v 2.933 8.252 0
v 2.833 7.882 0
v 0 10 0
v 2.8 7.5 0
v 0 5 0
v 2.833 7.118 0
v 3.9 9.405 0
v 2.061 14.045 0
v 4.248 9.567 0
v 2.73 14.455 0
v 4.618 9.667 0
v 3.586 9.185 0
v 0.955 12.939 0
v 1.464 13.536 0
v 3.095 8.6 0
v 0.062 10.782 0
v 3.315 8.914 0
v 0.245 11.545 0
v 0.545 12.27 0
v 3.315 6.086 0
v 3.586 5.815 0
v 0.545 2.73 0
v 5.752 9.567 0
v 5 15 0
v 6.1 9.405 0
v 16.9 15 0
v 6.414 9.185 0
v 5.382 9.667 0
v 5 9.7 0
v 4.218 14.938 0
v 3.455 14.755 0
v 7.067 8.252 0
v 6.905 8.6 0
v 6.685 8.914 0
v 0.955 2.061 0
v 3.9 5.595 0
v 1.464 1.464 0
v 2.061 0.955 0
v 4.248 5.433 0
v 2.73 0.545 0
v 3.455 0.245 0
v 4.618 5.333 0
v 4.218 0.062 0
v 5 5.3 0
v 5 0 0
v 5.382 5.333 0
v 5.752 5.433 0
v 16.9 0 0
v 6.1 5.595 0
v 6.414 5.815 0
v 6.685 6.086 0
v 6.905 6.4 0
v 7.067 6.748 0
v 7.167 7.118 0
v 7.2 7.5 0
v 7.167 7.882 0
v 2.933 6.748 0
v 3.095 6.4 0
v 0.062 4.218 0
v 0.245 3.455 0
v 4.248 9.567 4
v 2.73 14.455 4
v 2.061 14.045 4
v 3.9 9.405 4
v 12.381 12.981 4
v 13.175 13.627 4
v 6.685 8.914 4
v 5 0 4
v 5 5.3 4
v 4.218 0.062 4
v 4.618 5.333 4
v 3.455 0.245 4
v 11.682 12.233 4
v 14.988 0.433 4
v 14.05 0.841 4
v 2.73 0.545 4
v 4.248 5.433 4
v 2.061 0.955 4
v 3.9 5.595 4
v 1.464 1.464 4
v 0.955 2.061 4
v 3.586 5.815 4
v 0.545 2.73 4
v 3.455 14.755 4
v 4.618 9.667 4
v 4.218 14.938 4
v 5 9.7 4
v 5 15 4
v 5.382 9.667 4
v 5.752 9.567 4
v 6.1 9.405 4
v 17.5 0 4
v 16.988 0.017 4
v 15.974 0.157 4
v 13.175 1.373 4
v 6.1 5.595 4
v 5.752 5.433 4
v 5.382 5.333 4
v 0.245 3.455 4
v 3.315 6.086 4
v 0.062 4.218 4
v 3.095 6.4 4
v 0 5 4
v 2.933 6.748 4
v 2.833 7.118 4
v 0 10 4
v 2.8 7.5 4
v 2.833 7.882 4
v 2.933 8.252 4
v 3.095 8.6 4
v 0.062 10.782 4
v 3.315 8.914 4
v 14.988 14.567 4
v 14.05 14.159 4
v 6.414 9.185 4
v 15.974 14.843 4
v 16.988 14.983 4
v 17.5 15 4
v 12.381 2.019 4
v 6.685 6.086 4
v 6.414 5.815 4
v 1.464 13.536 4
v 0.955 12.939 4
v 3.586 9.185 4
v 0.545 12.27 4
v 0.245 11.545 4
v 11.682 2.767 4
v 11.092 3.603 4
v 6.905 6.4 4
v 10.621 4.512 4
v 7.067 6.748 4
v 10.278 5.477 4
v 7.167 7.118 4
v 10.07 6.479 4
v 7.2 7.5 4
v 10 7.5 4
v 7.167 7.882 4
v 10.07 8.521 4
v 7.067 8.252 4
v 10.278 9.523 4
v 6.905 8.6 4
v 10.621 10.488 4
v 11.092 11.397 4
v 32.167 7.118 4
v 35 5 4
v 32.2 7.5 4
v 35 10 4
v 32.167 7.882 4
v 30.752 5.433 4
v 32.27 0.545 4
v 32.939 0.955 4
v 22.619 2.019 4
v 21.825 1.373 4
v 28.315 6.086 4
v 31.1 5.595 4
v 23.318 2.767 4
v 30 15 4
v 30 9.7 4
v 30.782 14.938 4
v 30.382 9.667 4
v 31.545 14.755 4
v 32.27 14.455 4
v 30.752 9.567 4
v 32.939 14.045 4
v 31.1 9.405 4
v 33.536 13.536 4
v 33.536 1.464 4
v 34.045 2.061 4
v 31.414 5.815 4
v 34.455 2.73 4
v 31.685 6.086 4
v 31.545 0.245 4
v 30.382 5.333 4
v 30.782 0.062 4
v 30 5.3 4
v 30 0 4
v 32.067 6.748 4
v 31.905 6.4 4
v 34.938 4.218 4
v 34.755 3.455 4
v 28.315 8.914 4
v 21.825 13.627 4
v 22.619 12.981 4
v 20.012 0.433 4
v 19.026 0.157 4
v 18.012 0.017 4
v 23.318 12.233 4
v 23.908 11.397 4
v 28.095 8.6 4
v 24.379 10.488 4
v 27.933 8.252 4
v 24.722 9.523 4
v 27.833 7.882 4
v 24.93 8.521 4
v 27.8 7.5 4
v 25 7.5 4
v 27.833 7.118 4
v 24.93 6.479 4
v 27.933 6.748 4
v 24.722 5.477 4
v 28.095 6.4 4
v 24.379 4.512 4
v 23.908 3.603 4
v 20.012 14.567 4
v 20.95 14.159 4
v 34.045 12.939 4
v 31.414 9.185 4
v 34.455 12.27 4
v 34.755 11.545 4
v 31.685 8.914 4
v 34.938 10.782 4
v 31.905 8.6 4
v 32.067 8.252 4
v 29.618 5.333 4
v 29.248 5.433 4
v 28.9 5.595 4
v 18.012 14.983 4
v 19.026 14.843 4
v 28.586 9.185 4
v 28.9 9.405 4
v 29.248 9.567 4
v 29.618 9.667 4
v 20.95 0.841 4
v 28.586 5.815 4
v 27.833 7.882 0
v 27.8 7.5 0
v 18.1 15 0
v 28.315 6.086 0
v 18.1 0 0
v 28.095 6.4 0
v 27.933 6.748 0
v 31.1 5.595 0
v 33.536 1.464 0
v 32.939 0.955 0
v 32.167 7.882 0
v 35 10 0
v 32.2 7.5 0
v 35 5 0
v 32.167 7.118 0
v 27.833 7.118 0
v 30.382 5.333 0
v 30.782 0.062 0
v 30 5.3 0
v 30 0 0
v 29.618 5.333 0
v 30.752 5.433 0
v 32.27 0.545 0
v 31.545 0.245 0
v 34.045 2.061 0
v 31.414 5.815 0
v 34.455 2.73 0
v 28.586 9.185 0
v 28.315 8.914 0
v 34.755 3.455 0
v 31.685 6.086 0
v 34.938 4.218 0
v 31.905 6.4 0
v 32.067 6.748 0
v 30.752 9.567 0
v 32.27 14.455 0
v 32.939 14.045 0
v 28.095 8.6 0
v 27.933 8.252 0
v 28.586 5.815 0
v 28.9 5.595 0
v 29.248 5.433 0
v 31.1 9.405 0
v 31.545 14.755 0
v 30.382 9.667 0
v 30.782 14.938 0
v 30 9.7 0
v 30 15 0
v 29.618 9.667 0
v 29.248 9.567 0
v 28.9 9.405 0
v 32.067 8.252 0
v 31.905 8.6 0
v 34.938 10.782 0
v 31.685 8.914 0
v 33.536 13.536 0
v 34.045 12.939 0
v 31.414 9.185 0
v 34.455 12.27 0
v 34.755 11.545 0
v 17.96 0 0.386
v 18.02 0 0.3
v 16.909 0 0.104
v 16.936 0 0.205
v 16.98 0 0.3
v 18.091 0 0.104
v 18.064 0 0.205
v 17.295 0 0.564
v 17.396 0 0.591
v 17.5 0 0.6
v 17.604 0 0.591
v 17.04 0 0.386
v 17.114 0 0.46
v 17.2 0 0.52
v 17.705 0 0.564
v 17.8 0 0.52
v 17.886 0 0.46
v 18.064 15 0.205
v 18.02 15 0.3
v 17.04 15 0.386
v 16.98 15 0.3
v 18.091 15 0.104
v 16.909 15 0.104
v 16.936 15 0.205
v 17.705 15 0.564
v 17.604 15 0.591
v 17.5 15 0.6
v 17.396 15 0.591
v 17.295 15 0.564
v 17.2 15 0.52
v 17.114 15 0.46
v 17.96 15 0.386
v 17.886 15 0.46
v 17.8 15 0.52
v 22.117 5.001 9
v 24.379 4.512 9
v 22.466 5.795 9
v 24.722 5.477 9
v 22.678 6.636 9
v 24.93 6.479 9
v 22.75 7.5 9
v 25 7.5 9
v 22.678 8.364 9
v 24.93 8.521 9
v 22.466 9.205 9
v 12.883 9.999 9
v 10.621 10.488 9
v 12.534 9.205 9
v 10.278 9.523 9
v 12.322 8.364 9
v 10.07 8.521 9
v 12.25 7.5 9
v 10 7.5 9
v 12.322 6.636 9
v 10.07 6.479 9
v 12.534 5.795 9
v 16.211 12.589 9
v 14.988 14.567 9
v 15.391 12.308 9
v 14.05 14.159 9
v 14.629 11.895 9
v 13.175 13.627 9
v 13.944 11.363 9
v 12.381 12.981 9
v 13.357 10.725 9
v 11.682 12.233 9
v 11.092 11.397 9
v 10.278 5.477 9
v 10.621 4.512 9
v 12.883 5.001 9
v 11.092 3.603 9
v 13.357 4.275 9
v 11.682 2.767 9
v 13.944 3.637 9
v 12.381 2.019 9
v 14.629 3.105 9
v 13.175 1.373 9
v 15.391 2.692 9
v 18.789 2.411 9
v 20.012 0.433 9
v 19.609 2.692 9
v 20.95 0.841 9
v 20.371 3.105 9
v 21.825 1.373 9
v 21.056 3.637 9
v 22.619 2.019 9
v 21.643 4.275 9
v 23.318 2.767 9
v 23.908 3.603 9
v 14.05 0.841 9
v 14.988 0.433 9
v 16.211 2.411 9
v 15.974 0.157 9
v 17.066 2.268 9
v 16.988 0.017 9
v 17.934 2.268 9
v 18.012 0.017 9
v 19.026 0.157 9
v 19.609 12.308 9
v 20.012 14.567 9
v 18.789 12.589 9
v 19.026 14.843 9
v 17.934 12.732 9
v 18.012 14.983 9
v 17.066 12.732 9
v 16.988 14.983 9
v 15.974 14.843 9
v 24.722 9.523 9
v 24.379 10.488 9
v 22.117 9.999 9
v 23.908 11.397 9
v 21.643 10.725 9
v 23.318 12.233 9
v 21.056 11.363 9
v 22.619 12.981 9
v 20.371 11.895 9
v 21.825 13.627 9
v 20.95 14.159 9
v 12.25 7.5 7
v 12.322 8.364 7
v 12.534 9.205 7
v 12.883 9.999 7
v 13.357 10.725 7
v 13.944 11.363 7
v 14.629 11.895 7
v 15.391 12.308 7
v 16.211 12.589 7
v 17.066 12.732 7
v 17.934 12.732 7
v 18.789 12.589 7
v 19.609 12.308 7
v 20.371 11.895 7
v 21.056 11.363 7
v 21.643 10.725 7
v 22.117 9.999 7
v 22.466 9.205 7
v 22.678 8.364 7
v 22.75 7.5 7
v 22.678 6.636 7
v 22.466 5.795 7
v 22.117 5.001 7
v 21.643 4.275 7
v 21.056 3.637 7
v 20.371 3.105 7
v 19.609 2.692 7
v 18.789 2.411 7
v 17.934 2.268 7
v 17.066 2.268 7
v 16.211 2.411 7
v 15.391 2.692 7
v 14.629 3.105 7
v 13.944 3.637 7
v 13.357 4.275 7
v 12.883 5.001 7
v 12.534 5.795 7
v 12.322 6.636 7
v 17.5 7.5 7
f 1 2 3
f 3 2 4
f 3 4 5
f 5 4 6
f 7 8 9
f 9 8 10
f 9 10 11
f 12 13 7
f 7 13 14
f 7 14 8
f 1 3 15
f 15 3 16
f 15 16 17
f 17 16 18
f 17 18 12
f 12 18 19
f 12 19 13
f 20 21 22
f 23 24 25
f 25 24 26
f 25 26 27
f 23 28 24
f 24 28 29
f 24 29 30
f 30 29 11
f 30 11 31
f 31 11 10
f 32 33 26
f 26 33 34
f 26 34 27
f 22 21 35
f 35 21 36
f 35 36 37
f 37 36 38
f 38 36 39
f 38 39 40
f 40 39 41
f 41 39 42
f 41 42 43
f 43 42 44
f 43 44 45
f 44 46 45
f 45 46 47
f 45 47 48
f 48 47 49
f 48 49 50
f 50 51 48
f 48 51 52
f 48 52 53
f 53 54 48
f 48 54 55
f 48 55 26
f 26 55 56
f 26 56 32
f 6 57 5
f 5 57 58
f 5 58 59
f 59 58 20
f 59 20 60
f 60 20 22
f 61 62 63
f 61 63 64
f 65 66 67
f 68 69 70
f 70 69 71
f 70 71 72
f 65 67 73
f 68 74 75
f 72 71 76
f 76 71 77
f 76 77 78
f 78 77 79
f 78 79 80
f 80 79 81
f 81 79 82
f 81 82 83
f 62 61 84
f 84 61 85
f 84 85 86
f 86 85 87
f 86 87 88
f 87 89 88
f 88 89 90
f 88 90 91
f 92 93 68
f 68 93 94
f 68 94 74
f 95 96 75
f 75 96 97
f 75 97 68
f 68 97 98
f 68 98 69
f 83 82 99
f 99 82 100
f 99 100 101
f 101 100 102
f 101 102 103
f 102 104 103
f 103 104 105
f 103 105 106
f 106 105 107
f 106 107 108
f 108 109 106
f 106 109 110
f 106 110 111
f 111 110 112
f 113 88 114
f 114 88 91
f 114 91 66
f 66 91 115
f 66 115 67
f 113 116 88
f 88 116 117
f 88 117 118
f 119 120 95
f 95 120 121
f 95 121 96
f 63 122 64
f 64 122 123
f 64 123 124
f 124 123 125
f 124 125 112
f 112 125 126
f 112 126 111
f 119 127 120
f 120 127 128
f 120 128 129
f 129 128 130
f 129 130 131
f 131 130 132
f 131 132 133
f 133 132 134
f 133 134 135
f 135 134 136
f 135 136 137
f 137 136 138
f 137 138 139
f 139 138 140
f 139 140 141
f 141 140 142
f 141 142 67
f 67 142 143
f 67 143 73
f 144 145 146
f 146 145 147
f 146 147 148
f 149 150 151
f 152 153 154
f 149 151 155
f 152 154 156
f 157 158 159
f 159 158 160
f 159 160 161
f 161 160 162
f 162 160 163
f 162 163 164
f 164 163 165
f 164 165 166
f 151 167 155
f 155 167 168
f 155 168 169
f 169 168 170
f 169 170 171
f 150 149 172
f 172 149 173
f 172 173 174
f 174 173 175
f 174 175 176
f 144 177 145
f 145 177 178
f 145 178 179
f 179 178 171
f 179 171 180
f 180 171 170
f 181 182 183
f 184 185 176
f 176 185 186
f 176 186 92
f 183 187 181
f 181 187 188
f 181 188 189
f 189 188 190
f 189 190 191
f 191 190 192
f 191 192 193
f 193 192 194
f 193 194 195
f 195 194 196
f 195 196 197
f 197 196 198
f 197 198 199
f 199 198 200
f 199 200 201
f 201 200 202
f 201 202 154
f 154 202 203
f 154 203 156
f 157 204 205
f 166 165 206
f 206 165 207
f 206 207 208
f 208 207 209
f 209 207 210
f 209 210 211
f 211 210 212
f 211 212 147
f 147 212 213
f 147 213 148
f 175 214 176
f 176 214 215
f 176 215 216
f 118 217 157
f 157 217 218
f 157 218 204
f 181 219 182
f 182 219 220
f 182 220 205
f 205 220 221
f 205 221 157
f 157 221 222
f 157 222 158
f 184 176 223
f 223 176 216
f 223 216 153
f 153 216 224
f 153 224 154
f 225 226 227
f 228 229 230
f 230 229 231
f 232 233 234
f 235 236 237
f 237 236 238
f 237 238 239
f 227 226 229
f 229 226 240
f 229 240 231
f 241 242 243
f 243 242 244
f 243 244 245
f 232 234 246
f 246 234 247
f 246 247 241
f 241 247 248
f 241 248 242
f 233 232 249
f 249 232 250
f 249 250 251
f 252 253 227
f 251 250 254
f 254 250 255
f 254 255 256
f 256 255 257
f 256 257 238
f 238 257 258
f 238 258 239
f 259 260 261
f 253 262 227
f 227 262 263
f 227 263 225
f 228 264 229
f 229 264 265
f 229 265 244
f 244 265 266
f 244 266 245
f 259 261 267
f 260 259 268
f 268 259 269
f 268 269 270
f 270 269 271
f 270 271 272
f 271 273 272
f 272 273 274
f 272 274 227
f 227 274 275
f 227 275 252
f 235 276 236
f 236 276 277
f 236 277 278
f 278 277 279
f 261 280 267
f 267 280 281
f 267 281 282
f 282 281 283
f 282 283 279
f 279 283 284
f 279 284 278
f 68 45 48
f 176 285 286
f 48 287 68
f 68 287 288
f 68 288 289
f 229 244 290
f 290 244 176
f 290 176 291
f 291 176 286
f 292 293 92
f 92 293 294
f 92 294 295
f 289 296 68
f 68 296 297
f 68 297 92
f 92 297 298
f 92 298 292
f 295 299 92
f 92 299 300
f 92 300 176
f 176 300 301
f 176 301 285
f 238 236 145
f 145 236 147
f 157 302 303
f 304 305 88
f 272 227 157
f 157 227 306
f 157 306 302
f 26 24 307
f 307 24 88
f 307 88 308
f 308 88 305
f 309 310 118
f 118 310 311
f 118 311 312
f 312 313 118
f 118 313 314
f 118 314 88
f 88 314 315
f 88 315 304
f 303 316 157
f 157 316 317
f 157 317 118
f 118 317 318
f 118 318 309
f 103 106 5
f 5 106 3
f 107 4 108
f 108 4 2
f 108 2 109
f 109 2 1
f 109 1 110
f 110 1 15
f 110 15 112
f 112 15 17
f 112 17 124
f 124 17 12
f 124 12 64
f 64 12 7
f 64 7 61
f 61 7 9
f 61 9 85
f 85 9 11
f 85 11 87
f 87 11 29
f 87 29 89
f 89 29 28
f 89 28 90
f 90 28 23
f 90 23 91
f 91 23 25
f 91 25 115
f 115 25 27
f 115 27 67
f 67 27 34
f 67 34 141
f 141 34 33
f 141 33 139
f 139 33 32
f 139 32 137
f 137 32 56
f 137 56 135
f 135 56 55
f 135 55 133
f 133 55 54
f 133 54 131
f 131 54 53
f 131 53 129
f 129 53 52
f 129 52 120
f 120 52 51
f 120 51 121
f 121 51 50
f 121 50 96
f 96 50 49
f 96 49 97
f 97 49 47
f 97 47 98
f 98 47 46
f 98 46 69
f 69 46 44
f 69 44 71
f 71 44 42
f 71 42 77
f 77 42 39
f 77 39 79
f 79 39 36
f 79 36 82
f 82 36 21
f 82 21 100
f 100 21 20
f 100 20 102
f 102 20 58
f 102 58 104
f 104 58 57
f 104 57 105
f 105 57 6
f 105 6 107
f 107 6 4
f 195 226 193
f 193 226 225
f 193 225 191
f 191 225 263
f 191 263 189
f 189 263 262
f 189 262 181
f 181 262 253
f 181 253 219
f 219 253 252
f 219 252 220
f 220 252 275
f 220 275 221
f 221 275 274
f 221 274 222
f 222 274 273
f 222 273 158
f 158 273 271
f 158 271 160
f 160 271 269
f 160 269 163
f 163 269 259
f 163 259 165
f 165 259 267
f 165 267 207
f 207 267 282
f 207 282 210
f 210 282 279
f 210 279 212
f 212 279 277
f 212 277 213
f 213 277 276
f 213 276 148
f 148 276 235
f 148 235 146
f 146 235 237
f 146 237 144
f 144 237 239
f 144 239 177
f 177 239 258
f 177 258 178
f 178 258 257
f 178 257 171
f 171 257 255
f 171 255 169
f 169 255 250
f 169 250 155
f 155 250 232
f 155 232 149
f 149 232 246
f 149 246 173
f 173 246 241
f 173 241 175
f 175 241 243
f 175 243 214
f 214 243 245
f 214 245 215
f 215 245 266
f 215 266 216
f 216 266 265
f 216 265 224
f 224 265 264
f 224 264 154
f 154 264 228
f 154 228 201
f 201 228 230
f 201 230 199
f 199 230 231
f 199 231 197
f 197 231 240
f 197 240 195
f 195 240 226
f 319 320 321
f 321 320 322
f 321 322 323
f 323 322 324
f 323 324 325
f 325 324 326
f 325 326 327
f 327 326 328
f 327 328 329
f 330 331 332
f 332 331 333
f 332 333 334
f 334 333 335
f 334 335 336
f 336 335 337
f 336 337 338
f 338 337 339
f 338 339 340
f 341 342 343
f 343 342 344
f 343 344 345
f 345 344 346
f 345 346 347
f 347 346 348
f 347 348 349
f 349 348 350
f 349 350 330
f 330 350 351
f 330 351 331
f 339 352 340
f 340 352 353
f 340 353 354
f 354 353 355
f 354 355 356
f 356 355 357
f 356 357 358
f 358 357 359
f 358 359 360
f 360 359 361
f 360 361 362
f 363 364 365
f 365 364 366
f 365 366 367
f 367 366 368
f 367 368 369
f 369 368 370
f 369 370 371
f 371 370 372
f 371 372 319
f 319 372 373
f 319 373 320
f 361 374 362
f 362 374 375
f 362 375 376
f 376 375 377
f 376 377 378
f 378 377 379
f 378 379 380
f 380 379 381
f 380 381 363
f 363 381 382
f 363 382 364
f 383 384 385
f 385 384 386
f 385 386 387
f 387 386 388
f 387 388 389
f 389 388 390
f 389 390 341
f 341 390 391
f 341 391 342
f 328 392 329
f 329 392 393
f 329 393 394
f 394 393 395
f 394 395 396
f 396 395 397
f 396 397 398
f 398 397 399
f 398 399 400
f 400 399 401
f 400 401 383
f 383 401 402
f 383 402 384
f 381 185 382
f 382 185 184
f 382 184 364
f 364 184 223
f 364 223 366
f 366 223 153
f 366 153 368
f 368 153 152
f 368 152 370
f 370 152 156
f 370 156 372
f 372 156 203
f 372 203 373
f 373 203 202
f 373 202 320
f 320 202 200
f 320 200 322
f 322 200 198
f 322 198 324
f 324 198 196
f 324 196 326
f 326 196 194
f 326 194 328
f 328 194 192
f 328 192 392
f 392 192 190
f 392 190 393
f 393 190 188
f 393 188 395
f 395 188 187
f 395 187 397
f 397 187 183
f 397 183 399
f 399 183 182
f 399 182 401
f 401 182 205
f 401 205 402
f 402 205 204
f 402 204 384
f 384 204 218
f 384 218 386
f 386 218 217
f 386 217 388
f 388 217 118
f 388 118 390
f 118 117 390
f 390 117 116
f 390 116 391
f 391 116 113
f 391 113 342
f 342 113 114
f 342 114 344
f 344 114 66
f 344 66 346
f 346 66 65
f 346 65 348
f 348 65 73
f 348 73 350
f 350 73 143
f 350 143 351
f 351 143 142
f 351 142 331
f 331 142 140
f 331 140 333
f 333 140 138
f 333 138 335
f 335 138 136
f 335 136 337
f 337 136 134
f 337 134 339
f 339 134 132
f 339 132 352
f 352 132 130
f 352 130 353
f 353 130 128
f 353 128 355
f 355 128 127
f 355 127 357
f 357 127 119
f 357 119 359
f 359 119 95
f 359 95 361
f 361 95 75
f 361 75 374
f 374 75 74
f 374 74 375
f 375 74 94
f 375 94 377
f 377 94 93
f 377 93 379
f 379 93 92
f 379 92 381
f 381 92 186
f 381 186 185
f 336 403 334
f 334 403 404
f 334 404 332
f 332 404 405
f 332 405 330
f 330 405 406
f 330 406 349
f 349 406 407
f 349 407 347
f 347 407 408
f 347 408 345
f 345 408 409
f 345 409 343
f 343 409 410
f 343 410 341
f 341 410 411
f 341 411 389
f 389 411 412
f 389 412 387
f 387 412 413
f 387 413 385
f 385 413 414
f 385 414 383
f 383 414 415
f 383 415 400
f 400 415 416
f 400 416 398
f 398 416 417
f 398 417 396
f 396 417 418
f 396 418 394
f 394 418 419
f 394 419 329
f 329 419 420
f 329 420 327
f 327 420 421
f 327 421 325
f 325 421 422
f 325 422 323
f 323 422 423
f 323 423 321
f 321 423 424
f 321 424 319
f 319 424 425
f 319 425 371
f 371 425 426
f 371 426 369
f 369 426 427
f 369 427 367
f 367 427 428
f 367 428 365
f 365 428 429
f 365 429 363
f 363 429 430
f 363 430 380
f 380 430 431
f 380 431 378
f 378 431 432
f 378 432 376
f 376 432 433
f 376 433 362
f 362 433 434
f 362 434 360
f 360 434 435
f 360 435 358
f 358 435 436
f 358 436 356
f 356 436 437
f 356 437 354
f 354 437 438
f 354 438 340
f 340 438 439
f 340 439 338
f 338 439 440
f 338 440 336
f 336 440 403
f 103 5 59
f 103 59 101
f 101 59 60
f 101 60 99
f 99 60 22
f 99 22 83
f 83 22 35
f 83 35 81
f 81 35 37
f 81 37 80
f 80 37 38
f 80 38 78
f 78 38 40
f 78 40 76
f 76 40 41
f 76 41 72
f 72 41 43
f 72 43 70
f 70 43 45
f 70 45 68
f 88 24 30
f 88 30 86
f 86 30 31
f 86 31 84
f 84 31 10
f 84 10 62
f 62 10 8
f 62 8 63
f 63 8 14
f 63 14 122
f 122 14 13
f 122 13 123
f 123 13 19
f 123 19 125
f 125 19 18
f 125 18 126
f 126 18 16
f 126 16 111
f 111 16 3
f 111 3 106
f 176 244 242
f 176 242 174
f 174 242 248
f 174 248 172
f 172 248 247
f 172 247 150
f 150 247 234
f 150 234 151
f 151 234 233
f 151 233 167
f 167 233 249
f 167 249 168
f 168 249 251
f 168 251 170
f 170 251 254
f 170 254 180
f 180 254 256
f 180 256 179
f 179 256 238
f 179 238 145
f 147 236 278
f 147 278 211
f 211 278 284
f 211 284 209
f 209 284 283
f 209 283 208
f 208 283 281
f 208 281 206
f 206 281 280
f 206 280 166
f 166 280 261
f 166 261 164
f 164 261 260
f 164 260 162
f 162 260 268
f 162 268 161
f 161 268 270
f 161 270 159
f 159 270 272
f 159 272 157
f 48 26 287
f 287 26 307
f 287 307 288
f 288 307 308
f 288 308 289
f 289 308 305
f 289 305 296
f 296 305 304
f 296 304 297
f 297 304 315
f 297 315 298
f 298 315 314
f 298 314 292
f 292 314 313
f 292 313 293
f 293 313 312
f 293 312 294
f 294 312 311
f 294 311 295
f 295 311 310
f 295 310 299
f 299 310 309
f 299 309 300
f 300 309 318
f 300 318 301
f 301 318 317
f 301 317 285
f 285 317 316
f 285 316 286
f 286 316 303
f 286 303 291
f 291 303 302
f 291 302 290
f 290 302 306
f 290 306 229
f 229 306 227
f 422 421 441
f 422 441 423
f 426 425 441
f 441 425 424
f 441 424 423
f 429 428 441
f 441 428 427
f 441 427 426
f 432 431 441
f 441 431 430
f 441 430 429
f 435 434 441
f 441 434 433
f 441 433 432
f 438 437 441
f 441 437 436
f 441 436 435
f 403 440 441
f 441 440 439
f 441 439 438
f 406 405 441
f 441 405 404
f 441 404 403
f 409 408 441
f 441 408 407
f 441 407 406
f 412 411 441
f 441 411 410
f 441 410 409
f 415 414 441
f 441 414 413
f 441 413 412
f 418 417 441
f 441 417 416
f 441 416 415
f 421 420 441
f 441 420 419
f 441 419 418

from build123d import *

# Parameters (mm, degrees)
CROQUIS1_W              = 35
CROQUIS1_H              = 15
CROQUIS1_R              = 2.2
SALIENTE_EXTRUIR1_DEPTH = 4
CROQUIS2_R              = 7.5
CROQUIS2_R_2            = 5.25
SALIENTE_EXTRUIR2_DEPTH = 5
REDONDEO1_R             = 5
CROQUIS3_R              = 0.6
CORTAR_EXTRUIR1_DEPTH   = 32
CROQUIS4_R              = 5.25
SALIENTE_EXTRUIR3_DEPTH = 3


with BuildPart() as part:
    # Croquis1 → Saliente-Extruir1 (new body)
    with BuildSketch(Plane.XY):
        with Locations((17.5, 7.5)):
            Rectangle(CROQUIS1_W, CROQUIS1_H)
        with Locations((5, 7.5)):
            Circle(CROQUIS1_R, mode=Mode.SUBTRACT)
        with Locations((30, 7.5)):
            Circle(CROQUIS1_R, mode=Mode.SUBTRACT)
    extrude(amount=SALIENTE_EXTRUIR1_DEPTH)

    # Croquis2 → Saliente-Extruir2 (add)
    with BuildSketch(Plane.XY.offset(4)):
        with Locations(Location((17.5, 7.5, 0), (0, 0, 270))):
            Circle(CROQUIS2_R)
        with Locations((17.5, 7.5)):
            Circle(CROQUIS2_R_2, mode=Mode.SUBTRACT)
    extrude(amount=SALIENTE_EXTRUIR2_DEPTH)

    # Redondeo1
    redondeo1_edges = [part.edges().sort_by_distance(p)[0] for p in [
        (0, 0, 2),
        (0, 15, 2),
        (35, 15, 2),
        (35, 0, 2),
    ]]
    fillet(redondeo1_edges, radius=REDONDEO1_R)

    # Croquis3 → Cortar-Extruir1 (cut)
    with BuildSketch(Plane(origin=(0, 15, 0), x_dir=(1, 0, 0), z_dir=(0, 1, 0))):
        with Locations((17.5, 0)):
            Circle(CROQUIS3_R)
    extrude(amount=-CORTAR_EXTRUIR1_DEPTH, mode=Mode.SUBTRACT)

    # Croquis4 → Saliente-Extruir3 (add)
    with BuildSketch(Plane.XY.offset(4)):
        with Locations((17.5, 7.5)):
            Circle(CROQUIS4_R)
    extrude(amount=SALIENTE_EXTRUIR3_DEPTH)


solid = part.part
